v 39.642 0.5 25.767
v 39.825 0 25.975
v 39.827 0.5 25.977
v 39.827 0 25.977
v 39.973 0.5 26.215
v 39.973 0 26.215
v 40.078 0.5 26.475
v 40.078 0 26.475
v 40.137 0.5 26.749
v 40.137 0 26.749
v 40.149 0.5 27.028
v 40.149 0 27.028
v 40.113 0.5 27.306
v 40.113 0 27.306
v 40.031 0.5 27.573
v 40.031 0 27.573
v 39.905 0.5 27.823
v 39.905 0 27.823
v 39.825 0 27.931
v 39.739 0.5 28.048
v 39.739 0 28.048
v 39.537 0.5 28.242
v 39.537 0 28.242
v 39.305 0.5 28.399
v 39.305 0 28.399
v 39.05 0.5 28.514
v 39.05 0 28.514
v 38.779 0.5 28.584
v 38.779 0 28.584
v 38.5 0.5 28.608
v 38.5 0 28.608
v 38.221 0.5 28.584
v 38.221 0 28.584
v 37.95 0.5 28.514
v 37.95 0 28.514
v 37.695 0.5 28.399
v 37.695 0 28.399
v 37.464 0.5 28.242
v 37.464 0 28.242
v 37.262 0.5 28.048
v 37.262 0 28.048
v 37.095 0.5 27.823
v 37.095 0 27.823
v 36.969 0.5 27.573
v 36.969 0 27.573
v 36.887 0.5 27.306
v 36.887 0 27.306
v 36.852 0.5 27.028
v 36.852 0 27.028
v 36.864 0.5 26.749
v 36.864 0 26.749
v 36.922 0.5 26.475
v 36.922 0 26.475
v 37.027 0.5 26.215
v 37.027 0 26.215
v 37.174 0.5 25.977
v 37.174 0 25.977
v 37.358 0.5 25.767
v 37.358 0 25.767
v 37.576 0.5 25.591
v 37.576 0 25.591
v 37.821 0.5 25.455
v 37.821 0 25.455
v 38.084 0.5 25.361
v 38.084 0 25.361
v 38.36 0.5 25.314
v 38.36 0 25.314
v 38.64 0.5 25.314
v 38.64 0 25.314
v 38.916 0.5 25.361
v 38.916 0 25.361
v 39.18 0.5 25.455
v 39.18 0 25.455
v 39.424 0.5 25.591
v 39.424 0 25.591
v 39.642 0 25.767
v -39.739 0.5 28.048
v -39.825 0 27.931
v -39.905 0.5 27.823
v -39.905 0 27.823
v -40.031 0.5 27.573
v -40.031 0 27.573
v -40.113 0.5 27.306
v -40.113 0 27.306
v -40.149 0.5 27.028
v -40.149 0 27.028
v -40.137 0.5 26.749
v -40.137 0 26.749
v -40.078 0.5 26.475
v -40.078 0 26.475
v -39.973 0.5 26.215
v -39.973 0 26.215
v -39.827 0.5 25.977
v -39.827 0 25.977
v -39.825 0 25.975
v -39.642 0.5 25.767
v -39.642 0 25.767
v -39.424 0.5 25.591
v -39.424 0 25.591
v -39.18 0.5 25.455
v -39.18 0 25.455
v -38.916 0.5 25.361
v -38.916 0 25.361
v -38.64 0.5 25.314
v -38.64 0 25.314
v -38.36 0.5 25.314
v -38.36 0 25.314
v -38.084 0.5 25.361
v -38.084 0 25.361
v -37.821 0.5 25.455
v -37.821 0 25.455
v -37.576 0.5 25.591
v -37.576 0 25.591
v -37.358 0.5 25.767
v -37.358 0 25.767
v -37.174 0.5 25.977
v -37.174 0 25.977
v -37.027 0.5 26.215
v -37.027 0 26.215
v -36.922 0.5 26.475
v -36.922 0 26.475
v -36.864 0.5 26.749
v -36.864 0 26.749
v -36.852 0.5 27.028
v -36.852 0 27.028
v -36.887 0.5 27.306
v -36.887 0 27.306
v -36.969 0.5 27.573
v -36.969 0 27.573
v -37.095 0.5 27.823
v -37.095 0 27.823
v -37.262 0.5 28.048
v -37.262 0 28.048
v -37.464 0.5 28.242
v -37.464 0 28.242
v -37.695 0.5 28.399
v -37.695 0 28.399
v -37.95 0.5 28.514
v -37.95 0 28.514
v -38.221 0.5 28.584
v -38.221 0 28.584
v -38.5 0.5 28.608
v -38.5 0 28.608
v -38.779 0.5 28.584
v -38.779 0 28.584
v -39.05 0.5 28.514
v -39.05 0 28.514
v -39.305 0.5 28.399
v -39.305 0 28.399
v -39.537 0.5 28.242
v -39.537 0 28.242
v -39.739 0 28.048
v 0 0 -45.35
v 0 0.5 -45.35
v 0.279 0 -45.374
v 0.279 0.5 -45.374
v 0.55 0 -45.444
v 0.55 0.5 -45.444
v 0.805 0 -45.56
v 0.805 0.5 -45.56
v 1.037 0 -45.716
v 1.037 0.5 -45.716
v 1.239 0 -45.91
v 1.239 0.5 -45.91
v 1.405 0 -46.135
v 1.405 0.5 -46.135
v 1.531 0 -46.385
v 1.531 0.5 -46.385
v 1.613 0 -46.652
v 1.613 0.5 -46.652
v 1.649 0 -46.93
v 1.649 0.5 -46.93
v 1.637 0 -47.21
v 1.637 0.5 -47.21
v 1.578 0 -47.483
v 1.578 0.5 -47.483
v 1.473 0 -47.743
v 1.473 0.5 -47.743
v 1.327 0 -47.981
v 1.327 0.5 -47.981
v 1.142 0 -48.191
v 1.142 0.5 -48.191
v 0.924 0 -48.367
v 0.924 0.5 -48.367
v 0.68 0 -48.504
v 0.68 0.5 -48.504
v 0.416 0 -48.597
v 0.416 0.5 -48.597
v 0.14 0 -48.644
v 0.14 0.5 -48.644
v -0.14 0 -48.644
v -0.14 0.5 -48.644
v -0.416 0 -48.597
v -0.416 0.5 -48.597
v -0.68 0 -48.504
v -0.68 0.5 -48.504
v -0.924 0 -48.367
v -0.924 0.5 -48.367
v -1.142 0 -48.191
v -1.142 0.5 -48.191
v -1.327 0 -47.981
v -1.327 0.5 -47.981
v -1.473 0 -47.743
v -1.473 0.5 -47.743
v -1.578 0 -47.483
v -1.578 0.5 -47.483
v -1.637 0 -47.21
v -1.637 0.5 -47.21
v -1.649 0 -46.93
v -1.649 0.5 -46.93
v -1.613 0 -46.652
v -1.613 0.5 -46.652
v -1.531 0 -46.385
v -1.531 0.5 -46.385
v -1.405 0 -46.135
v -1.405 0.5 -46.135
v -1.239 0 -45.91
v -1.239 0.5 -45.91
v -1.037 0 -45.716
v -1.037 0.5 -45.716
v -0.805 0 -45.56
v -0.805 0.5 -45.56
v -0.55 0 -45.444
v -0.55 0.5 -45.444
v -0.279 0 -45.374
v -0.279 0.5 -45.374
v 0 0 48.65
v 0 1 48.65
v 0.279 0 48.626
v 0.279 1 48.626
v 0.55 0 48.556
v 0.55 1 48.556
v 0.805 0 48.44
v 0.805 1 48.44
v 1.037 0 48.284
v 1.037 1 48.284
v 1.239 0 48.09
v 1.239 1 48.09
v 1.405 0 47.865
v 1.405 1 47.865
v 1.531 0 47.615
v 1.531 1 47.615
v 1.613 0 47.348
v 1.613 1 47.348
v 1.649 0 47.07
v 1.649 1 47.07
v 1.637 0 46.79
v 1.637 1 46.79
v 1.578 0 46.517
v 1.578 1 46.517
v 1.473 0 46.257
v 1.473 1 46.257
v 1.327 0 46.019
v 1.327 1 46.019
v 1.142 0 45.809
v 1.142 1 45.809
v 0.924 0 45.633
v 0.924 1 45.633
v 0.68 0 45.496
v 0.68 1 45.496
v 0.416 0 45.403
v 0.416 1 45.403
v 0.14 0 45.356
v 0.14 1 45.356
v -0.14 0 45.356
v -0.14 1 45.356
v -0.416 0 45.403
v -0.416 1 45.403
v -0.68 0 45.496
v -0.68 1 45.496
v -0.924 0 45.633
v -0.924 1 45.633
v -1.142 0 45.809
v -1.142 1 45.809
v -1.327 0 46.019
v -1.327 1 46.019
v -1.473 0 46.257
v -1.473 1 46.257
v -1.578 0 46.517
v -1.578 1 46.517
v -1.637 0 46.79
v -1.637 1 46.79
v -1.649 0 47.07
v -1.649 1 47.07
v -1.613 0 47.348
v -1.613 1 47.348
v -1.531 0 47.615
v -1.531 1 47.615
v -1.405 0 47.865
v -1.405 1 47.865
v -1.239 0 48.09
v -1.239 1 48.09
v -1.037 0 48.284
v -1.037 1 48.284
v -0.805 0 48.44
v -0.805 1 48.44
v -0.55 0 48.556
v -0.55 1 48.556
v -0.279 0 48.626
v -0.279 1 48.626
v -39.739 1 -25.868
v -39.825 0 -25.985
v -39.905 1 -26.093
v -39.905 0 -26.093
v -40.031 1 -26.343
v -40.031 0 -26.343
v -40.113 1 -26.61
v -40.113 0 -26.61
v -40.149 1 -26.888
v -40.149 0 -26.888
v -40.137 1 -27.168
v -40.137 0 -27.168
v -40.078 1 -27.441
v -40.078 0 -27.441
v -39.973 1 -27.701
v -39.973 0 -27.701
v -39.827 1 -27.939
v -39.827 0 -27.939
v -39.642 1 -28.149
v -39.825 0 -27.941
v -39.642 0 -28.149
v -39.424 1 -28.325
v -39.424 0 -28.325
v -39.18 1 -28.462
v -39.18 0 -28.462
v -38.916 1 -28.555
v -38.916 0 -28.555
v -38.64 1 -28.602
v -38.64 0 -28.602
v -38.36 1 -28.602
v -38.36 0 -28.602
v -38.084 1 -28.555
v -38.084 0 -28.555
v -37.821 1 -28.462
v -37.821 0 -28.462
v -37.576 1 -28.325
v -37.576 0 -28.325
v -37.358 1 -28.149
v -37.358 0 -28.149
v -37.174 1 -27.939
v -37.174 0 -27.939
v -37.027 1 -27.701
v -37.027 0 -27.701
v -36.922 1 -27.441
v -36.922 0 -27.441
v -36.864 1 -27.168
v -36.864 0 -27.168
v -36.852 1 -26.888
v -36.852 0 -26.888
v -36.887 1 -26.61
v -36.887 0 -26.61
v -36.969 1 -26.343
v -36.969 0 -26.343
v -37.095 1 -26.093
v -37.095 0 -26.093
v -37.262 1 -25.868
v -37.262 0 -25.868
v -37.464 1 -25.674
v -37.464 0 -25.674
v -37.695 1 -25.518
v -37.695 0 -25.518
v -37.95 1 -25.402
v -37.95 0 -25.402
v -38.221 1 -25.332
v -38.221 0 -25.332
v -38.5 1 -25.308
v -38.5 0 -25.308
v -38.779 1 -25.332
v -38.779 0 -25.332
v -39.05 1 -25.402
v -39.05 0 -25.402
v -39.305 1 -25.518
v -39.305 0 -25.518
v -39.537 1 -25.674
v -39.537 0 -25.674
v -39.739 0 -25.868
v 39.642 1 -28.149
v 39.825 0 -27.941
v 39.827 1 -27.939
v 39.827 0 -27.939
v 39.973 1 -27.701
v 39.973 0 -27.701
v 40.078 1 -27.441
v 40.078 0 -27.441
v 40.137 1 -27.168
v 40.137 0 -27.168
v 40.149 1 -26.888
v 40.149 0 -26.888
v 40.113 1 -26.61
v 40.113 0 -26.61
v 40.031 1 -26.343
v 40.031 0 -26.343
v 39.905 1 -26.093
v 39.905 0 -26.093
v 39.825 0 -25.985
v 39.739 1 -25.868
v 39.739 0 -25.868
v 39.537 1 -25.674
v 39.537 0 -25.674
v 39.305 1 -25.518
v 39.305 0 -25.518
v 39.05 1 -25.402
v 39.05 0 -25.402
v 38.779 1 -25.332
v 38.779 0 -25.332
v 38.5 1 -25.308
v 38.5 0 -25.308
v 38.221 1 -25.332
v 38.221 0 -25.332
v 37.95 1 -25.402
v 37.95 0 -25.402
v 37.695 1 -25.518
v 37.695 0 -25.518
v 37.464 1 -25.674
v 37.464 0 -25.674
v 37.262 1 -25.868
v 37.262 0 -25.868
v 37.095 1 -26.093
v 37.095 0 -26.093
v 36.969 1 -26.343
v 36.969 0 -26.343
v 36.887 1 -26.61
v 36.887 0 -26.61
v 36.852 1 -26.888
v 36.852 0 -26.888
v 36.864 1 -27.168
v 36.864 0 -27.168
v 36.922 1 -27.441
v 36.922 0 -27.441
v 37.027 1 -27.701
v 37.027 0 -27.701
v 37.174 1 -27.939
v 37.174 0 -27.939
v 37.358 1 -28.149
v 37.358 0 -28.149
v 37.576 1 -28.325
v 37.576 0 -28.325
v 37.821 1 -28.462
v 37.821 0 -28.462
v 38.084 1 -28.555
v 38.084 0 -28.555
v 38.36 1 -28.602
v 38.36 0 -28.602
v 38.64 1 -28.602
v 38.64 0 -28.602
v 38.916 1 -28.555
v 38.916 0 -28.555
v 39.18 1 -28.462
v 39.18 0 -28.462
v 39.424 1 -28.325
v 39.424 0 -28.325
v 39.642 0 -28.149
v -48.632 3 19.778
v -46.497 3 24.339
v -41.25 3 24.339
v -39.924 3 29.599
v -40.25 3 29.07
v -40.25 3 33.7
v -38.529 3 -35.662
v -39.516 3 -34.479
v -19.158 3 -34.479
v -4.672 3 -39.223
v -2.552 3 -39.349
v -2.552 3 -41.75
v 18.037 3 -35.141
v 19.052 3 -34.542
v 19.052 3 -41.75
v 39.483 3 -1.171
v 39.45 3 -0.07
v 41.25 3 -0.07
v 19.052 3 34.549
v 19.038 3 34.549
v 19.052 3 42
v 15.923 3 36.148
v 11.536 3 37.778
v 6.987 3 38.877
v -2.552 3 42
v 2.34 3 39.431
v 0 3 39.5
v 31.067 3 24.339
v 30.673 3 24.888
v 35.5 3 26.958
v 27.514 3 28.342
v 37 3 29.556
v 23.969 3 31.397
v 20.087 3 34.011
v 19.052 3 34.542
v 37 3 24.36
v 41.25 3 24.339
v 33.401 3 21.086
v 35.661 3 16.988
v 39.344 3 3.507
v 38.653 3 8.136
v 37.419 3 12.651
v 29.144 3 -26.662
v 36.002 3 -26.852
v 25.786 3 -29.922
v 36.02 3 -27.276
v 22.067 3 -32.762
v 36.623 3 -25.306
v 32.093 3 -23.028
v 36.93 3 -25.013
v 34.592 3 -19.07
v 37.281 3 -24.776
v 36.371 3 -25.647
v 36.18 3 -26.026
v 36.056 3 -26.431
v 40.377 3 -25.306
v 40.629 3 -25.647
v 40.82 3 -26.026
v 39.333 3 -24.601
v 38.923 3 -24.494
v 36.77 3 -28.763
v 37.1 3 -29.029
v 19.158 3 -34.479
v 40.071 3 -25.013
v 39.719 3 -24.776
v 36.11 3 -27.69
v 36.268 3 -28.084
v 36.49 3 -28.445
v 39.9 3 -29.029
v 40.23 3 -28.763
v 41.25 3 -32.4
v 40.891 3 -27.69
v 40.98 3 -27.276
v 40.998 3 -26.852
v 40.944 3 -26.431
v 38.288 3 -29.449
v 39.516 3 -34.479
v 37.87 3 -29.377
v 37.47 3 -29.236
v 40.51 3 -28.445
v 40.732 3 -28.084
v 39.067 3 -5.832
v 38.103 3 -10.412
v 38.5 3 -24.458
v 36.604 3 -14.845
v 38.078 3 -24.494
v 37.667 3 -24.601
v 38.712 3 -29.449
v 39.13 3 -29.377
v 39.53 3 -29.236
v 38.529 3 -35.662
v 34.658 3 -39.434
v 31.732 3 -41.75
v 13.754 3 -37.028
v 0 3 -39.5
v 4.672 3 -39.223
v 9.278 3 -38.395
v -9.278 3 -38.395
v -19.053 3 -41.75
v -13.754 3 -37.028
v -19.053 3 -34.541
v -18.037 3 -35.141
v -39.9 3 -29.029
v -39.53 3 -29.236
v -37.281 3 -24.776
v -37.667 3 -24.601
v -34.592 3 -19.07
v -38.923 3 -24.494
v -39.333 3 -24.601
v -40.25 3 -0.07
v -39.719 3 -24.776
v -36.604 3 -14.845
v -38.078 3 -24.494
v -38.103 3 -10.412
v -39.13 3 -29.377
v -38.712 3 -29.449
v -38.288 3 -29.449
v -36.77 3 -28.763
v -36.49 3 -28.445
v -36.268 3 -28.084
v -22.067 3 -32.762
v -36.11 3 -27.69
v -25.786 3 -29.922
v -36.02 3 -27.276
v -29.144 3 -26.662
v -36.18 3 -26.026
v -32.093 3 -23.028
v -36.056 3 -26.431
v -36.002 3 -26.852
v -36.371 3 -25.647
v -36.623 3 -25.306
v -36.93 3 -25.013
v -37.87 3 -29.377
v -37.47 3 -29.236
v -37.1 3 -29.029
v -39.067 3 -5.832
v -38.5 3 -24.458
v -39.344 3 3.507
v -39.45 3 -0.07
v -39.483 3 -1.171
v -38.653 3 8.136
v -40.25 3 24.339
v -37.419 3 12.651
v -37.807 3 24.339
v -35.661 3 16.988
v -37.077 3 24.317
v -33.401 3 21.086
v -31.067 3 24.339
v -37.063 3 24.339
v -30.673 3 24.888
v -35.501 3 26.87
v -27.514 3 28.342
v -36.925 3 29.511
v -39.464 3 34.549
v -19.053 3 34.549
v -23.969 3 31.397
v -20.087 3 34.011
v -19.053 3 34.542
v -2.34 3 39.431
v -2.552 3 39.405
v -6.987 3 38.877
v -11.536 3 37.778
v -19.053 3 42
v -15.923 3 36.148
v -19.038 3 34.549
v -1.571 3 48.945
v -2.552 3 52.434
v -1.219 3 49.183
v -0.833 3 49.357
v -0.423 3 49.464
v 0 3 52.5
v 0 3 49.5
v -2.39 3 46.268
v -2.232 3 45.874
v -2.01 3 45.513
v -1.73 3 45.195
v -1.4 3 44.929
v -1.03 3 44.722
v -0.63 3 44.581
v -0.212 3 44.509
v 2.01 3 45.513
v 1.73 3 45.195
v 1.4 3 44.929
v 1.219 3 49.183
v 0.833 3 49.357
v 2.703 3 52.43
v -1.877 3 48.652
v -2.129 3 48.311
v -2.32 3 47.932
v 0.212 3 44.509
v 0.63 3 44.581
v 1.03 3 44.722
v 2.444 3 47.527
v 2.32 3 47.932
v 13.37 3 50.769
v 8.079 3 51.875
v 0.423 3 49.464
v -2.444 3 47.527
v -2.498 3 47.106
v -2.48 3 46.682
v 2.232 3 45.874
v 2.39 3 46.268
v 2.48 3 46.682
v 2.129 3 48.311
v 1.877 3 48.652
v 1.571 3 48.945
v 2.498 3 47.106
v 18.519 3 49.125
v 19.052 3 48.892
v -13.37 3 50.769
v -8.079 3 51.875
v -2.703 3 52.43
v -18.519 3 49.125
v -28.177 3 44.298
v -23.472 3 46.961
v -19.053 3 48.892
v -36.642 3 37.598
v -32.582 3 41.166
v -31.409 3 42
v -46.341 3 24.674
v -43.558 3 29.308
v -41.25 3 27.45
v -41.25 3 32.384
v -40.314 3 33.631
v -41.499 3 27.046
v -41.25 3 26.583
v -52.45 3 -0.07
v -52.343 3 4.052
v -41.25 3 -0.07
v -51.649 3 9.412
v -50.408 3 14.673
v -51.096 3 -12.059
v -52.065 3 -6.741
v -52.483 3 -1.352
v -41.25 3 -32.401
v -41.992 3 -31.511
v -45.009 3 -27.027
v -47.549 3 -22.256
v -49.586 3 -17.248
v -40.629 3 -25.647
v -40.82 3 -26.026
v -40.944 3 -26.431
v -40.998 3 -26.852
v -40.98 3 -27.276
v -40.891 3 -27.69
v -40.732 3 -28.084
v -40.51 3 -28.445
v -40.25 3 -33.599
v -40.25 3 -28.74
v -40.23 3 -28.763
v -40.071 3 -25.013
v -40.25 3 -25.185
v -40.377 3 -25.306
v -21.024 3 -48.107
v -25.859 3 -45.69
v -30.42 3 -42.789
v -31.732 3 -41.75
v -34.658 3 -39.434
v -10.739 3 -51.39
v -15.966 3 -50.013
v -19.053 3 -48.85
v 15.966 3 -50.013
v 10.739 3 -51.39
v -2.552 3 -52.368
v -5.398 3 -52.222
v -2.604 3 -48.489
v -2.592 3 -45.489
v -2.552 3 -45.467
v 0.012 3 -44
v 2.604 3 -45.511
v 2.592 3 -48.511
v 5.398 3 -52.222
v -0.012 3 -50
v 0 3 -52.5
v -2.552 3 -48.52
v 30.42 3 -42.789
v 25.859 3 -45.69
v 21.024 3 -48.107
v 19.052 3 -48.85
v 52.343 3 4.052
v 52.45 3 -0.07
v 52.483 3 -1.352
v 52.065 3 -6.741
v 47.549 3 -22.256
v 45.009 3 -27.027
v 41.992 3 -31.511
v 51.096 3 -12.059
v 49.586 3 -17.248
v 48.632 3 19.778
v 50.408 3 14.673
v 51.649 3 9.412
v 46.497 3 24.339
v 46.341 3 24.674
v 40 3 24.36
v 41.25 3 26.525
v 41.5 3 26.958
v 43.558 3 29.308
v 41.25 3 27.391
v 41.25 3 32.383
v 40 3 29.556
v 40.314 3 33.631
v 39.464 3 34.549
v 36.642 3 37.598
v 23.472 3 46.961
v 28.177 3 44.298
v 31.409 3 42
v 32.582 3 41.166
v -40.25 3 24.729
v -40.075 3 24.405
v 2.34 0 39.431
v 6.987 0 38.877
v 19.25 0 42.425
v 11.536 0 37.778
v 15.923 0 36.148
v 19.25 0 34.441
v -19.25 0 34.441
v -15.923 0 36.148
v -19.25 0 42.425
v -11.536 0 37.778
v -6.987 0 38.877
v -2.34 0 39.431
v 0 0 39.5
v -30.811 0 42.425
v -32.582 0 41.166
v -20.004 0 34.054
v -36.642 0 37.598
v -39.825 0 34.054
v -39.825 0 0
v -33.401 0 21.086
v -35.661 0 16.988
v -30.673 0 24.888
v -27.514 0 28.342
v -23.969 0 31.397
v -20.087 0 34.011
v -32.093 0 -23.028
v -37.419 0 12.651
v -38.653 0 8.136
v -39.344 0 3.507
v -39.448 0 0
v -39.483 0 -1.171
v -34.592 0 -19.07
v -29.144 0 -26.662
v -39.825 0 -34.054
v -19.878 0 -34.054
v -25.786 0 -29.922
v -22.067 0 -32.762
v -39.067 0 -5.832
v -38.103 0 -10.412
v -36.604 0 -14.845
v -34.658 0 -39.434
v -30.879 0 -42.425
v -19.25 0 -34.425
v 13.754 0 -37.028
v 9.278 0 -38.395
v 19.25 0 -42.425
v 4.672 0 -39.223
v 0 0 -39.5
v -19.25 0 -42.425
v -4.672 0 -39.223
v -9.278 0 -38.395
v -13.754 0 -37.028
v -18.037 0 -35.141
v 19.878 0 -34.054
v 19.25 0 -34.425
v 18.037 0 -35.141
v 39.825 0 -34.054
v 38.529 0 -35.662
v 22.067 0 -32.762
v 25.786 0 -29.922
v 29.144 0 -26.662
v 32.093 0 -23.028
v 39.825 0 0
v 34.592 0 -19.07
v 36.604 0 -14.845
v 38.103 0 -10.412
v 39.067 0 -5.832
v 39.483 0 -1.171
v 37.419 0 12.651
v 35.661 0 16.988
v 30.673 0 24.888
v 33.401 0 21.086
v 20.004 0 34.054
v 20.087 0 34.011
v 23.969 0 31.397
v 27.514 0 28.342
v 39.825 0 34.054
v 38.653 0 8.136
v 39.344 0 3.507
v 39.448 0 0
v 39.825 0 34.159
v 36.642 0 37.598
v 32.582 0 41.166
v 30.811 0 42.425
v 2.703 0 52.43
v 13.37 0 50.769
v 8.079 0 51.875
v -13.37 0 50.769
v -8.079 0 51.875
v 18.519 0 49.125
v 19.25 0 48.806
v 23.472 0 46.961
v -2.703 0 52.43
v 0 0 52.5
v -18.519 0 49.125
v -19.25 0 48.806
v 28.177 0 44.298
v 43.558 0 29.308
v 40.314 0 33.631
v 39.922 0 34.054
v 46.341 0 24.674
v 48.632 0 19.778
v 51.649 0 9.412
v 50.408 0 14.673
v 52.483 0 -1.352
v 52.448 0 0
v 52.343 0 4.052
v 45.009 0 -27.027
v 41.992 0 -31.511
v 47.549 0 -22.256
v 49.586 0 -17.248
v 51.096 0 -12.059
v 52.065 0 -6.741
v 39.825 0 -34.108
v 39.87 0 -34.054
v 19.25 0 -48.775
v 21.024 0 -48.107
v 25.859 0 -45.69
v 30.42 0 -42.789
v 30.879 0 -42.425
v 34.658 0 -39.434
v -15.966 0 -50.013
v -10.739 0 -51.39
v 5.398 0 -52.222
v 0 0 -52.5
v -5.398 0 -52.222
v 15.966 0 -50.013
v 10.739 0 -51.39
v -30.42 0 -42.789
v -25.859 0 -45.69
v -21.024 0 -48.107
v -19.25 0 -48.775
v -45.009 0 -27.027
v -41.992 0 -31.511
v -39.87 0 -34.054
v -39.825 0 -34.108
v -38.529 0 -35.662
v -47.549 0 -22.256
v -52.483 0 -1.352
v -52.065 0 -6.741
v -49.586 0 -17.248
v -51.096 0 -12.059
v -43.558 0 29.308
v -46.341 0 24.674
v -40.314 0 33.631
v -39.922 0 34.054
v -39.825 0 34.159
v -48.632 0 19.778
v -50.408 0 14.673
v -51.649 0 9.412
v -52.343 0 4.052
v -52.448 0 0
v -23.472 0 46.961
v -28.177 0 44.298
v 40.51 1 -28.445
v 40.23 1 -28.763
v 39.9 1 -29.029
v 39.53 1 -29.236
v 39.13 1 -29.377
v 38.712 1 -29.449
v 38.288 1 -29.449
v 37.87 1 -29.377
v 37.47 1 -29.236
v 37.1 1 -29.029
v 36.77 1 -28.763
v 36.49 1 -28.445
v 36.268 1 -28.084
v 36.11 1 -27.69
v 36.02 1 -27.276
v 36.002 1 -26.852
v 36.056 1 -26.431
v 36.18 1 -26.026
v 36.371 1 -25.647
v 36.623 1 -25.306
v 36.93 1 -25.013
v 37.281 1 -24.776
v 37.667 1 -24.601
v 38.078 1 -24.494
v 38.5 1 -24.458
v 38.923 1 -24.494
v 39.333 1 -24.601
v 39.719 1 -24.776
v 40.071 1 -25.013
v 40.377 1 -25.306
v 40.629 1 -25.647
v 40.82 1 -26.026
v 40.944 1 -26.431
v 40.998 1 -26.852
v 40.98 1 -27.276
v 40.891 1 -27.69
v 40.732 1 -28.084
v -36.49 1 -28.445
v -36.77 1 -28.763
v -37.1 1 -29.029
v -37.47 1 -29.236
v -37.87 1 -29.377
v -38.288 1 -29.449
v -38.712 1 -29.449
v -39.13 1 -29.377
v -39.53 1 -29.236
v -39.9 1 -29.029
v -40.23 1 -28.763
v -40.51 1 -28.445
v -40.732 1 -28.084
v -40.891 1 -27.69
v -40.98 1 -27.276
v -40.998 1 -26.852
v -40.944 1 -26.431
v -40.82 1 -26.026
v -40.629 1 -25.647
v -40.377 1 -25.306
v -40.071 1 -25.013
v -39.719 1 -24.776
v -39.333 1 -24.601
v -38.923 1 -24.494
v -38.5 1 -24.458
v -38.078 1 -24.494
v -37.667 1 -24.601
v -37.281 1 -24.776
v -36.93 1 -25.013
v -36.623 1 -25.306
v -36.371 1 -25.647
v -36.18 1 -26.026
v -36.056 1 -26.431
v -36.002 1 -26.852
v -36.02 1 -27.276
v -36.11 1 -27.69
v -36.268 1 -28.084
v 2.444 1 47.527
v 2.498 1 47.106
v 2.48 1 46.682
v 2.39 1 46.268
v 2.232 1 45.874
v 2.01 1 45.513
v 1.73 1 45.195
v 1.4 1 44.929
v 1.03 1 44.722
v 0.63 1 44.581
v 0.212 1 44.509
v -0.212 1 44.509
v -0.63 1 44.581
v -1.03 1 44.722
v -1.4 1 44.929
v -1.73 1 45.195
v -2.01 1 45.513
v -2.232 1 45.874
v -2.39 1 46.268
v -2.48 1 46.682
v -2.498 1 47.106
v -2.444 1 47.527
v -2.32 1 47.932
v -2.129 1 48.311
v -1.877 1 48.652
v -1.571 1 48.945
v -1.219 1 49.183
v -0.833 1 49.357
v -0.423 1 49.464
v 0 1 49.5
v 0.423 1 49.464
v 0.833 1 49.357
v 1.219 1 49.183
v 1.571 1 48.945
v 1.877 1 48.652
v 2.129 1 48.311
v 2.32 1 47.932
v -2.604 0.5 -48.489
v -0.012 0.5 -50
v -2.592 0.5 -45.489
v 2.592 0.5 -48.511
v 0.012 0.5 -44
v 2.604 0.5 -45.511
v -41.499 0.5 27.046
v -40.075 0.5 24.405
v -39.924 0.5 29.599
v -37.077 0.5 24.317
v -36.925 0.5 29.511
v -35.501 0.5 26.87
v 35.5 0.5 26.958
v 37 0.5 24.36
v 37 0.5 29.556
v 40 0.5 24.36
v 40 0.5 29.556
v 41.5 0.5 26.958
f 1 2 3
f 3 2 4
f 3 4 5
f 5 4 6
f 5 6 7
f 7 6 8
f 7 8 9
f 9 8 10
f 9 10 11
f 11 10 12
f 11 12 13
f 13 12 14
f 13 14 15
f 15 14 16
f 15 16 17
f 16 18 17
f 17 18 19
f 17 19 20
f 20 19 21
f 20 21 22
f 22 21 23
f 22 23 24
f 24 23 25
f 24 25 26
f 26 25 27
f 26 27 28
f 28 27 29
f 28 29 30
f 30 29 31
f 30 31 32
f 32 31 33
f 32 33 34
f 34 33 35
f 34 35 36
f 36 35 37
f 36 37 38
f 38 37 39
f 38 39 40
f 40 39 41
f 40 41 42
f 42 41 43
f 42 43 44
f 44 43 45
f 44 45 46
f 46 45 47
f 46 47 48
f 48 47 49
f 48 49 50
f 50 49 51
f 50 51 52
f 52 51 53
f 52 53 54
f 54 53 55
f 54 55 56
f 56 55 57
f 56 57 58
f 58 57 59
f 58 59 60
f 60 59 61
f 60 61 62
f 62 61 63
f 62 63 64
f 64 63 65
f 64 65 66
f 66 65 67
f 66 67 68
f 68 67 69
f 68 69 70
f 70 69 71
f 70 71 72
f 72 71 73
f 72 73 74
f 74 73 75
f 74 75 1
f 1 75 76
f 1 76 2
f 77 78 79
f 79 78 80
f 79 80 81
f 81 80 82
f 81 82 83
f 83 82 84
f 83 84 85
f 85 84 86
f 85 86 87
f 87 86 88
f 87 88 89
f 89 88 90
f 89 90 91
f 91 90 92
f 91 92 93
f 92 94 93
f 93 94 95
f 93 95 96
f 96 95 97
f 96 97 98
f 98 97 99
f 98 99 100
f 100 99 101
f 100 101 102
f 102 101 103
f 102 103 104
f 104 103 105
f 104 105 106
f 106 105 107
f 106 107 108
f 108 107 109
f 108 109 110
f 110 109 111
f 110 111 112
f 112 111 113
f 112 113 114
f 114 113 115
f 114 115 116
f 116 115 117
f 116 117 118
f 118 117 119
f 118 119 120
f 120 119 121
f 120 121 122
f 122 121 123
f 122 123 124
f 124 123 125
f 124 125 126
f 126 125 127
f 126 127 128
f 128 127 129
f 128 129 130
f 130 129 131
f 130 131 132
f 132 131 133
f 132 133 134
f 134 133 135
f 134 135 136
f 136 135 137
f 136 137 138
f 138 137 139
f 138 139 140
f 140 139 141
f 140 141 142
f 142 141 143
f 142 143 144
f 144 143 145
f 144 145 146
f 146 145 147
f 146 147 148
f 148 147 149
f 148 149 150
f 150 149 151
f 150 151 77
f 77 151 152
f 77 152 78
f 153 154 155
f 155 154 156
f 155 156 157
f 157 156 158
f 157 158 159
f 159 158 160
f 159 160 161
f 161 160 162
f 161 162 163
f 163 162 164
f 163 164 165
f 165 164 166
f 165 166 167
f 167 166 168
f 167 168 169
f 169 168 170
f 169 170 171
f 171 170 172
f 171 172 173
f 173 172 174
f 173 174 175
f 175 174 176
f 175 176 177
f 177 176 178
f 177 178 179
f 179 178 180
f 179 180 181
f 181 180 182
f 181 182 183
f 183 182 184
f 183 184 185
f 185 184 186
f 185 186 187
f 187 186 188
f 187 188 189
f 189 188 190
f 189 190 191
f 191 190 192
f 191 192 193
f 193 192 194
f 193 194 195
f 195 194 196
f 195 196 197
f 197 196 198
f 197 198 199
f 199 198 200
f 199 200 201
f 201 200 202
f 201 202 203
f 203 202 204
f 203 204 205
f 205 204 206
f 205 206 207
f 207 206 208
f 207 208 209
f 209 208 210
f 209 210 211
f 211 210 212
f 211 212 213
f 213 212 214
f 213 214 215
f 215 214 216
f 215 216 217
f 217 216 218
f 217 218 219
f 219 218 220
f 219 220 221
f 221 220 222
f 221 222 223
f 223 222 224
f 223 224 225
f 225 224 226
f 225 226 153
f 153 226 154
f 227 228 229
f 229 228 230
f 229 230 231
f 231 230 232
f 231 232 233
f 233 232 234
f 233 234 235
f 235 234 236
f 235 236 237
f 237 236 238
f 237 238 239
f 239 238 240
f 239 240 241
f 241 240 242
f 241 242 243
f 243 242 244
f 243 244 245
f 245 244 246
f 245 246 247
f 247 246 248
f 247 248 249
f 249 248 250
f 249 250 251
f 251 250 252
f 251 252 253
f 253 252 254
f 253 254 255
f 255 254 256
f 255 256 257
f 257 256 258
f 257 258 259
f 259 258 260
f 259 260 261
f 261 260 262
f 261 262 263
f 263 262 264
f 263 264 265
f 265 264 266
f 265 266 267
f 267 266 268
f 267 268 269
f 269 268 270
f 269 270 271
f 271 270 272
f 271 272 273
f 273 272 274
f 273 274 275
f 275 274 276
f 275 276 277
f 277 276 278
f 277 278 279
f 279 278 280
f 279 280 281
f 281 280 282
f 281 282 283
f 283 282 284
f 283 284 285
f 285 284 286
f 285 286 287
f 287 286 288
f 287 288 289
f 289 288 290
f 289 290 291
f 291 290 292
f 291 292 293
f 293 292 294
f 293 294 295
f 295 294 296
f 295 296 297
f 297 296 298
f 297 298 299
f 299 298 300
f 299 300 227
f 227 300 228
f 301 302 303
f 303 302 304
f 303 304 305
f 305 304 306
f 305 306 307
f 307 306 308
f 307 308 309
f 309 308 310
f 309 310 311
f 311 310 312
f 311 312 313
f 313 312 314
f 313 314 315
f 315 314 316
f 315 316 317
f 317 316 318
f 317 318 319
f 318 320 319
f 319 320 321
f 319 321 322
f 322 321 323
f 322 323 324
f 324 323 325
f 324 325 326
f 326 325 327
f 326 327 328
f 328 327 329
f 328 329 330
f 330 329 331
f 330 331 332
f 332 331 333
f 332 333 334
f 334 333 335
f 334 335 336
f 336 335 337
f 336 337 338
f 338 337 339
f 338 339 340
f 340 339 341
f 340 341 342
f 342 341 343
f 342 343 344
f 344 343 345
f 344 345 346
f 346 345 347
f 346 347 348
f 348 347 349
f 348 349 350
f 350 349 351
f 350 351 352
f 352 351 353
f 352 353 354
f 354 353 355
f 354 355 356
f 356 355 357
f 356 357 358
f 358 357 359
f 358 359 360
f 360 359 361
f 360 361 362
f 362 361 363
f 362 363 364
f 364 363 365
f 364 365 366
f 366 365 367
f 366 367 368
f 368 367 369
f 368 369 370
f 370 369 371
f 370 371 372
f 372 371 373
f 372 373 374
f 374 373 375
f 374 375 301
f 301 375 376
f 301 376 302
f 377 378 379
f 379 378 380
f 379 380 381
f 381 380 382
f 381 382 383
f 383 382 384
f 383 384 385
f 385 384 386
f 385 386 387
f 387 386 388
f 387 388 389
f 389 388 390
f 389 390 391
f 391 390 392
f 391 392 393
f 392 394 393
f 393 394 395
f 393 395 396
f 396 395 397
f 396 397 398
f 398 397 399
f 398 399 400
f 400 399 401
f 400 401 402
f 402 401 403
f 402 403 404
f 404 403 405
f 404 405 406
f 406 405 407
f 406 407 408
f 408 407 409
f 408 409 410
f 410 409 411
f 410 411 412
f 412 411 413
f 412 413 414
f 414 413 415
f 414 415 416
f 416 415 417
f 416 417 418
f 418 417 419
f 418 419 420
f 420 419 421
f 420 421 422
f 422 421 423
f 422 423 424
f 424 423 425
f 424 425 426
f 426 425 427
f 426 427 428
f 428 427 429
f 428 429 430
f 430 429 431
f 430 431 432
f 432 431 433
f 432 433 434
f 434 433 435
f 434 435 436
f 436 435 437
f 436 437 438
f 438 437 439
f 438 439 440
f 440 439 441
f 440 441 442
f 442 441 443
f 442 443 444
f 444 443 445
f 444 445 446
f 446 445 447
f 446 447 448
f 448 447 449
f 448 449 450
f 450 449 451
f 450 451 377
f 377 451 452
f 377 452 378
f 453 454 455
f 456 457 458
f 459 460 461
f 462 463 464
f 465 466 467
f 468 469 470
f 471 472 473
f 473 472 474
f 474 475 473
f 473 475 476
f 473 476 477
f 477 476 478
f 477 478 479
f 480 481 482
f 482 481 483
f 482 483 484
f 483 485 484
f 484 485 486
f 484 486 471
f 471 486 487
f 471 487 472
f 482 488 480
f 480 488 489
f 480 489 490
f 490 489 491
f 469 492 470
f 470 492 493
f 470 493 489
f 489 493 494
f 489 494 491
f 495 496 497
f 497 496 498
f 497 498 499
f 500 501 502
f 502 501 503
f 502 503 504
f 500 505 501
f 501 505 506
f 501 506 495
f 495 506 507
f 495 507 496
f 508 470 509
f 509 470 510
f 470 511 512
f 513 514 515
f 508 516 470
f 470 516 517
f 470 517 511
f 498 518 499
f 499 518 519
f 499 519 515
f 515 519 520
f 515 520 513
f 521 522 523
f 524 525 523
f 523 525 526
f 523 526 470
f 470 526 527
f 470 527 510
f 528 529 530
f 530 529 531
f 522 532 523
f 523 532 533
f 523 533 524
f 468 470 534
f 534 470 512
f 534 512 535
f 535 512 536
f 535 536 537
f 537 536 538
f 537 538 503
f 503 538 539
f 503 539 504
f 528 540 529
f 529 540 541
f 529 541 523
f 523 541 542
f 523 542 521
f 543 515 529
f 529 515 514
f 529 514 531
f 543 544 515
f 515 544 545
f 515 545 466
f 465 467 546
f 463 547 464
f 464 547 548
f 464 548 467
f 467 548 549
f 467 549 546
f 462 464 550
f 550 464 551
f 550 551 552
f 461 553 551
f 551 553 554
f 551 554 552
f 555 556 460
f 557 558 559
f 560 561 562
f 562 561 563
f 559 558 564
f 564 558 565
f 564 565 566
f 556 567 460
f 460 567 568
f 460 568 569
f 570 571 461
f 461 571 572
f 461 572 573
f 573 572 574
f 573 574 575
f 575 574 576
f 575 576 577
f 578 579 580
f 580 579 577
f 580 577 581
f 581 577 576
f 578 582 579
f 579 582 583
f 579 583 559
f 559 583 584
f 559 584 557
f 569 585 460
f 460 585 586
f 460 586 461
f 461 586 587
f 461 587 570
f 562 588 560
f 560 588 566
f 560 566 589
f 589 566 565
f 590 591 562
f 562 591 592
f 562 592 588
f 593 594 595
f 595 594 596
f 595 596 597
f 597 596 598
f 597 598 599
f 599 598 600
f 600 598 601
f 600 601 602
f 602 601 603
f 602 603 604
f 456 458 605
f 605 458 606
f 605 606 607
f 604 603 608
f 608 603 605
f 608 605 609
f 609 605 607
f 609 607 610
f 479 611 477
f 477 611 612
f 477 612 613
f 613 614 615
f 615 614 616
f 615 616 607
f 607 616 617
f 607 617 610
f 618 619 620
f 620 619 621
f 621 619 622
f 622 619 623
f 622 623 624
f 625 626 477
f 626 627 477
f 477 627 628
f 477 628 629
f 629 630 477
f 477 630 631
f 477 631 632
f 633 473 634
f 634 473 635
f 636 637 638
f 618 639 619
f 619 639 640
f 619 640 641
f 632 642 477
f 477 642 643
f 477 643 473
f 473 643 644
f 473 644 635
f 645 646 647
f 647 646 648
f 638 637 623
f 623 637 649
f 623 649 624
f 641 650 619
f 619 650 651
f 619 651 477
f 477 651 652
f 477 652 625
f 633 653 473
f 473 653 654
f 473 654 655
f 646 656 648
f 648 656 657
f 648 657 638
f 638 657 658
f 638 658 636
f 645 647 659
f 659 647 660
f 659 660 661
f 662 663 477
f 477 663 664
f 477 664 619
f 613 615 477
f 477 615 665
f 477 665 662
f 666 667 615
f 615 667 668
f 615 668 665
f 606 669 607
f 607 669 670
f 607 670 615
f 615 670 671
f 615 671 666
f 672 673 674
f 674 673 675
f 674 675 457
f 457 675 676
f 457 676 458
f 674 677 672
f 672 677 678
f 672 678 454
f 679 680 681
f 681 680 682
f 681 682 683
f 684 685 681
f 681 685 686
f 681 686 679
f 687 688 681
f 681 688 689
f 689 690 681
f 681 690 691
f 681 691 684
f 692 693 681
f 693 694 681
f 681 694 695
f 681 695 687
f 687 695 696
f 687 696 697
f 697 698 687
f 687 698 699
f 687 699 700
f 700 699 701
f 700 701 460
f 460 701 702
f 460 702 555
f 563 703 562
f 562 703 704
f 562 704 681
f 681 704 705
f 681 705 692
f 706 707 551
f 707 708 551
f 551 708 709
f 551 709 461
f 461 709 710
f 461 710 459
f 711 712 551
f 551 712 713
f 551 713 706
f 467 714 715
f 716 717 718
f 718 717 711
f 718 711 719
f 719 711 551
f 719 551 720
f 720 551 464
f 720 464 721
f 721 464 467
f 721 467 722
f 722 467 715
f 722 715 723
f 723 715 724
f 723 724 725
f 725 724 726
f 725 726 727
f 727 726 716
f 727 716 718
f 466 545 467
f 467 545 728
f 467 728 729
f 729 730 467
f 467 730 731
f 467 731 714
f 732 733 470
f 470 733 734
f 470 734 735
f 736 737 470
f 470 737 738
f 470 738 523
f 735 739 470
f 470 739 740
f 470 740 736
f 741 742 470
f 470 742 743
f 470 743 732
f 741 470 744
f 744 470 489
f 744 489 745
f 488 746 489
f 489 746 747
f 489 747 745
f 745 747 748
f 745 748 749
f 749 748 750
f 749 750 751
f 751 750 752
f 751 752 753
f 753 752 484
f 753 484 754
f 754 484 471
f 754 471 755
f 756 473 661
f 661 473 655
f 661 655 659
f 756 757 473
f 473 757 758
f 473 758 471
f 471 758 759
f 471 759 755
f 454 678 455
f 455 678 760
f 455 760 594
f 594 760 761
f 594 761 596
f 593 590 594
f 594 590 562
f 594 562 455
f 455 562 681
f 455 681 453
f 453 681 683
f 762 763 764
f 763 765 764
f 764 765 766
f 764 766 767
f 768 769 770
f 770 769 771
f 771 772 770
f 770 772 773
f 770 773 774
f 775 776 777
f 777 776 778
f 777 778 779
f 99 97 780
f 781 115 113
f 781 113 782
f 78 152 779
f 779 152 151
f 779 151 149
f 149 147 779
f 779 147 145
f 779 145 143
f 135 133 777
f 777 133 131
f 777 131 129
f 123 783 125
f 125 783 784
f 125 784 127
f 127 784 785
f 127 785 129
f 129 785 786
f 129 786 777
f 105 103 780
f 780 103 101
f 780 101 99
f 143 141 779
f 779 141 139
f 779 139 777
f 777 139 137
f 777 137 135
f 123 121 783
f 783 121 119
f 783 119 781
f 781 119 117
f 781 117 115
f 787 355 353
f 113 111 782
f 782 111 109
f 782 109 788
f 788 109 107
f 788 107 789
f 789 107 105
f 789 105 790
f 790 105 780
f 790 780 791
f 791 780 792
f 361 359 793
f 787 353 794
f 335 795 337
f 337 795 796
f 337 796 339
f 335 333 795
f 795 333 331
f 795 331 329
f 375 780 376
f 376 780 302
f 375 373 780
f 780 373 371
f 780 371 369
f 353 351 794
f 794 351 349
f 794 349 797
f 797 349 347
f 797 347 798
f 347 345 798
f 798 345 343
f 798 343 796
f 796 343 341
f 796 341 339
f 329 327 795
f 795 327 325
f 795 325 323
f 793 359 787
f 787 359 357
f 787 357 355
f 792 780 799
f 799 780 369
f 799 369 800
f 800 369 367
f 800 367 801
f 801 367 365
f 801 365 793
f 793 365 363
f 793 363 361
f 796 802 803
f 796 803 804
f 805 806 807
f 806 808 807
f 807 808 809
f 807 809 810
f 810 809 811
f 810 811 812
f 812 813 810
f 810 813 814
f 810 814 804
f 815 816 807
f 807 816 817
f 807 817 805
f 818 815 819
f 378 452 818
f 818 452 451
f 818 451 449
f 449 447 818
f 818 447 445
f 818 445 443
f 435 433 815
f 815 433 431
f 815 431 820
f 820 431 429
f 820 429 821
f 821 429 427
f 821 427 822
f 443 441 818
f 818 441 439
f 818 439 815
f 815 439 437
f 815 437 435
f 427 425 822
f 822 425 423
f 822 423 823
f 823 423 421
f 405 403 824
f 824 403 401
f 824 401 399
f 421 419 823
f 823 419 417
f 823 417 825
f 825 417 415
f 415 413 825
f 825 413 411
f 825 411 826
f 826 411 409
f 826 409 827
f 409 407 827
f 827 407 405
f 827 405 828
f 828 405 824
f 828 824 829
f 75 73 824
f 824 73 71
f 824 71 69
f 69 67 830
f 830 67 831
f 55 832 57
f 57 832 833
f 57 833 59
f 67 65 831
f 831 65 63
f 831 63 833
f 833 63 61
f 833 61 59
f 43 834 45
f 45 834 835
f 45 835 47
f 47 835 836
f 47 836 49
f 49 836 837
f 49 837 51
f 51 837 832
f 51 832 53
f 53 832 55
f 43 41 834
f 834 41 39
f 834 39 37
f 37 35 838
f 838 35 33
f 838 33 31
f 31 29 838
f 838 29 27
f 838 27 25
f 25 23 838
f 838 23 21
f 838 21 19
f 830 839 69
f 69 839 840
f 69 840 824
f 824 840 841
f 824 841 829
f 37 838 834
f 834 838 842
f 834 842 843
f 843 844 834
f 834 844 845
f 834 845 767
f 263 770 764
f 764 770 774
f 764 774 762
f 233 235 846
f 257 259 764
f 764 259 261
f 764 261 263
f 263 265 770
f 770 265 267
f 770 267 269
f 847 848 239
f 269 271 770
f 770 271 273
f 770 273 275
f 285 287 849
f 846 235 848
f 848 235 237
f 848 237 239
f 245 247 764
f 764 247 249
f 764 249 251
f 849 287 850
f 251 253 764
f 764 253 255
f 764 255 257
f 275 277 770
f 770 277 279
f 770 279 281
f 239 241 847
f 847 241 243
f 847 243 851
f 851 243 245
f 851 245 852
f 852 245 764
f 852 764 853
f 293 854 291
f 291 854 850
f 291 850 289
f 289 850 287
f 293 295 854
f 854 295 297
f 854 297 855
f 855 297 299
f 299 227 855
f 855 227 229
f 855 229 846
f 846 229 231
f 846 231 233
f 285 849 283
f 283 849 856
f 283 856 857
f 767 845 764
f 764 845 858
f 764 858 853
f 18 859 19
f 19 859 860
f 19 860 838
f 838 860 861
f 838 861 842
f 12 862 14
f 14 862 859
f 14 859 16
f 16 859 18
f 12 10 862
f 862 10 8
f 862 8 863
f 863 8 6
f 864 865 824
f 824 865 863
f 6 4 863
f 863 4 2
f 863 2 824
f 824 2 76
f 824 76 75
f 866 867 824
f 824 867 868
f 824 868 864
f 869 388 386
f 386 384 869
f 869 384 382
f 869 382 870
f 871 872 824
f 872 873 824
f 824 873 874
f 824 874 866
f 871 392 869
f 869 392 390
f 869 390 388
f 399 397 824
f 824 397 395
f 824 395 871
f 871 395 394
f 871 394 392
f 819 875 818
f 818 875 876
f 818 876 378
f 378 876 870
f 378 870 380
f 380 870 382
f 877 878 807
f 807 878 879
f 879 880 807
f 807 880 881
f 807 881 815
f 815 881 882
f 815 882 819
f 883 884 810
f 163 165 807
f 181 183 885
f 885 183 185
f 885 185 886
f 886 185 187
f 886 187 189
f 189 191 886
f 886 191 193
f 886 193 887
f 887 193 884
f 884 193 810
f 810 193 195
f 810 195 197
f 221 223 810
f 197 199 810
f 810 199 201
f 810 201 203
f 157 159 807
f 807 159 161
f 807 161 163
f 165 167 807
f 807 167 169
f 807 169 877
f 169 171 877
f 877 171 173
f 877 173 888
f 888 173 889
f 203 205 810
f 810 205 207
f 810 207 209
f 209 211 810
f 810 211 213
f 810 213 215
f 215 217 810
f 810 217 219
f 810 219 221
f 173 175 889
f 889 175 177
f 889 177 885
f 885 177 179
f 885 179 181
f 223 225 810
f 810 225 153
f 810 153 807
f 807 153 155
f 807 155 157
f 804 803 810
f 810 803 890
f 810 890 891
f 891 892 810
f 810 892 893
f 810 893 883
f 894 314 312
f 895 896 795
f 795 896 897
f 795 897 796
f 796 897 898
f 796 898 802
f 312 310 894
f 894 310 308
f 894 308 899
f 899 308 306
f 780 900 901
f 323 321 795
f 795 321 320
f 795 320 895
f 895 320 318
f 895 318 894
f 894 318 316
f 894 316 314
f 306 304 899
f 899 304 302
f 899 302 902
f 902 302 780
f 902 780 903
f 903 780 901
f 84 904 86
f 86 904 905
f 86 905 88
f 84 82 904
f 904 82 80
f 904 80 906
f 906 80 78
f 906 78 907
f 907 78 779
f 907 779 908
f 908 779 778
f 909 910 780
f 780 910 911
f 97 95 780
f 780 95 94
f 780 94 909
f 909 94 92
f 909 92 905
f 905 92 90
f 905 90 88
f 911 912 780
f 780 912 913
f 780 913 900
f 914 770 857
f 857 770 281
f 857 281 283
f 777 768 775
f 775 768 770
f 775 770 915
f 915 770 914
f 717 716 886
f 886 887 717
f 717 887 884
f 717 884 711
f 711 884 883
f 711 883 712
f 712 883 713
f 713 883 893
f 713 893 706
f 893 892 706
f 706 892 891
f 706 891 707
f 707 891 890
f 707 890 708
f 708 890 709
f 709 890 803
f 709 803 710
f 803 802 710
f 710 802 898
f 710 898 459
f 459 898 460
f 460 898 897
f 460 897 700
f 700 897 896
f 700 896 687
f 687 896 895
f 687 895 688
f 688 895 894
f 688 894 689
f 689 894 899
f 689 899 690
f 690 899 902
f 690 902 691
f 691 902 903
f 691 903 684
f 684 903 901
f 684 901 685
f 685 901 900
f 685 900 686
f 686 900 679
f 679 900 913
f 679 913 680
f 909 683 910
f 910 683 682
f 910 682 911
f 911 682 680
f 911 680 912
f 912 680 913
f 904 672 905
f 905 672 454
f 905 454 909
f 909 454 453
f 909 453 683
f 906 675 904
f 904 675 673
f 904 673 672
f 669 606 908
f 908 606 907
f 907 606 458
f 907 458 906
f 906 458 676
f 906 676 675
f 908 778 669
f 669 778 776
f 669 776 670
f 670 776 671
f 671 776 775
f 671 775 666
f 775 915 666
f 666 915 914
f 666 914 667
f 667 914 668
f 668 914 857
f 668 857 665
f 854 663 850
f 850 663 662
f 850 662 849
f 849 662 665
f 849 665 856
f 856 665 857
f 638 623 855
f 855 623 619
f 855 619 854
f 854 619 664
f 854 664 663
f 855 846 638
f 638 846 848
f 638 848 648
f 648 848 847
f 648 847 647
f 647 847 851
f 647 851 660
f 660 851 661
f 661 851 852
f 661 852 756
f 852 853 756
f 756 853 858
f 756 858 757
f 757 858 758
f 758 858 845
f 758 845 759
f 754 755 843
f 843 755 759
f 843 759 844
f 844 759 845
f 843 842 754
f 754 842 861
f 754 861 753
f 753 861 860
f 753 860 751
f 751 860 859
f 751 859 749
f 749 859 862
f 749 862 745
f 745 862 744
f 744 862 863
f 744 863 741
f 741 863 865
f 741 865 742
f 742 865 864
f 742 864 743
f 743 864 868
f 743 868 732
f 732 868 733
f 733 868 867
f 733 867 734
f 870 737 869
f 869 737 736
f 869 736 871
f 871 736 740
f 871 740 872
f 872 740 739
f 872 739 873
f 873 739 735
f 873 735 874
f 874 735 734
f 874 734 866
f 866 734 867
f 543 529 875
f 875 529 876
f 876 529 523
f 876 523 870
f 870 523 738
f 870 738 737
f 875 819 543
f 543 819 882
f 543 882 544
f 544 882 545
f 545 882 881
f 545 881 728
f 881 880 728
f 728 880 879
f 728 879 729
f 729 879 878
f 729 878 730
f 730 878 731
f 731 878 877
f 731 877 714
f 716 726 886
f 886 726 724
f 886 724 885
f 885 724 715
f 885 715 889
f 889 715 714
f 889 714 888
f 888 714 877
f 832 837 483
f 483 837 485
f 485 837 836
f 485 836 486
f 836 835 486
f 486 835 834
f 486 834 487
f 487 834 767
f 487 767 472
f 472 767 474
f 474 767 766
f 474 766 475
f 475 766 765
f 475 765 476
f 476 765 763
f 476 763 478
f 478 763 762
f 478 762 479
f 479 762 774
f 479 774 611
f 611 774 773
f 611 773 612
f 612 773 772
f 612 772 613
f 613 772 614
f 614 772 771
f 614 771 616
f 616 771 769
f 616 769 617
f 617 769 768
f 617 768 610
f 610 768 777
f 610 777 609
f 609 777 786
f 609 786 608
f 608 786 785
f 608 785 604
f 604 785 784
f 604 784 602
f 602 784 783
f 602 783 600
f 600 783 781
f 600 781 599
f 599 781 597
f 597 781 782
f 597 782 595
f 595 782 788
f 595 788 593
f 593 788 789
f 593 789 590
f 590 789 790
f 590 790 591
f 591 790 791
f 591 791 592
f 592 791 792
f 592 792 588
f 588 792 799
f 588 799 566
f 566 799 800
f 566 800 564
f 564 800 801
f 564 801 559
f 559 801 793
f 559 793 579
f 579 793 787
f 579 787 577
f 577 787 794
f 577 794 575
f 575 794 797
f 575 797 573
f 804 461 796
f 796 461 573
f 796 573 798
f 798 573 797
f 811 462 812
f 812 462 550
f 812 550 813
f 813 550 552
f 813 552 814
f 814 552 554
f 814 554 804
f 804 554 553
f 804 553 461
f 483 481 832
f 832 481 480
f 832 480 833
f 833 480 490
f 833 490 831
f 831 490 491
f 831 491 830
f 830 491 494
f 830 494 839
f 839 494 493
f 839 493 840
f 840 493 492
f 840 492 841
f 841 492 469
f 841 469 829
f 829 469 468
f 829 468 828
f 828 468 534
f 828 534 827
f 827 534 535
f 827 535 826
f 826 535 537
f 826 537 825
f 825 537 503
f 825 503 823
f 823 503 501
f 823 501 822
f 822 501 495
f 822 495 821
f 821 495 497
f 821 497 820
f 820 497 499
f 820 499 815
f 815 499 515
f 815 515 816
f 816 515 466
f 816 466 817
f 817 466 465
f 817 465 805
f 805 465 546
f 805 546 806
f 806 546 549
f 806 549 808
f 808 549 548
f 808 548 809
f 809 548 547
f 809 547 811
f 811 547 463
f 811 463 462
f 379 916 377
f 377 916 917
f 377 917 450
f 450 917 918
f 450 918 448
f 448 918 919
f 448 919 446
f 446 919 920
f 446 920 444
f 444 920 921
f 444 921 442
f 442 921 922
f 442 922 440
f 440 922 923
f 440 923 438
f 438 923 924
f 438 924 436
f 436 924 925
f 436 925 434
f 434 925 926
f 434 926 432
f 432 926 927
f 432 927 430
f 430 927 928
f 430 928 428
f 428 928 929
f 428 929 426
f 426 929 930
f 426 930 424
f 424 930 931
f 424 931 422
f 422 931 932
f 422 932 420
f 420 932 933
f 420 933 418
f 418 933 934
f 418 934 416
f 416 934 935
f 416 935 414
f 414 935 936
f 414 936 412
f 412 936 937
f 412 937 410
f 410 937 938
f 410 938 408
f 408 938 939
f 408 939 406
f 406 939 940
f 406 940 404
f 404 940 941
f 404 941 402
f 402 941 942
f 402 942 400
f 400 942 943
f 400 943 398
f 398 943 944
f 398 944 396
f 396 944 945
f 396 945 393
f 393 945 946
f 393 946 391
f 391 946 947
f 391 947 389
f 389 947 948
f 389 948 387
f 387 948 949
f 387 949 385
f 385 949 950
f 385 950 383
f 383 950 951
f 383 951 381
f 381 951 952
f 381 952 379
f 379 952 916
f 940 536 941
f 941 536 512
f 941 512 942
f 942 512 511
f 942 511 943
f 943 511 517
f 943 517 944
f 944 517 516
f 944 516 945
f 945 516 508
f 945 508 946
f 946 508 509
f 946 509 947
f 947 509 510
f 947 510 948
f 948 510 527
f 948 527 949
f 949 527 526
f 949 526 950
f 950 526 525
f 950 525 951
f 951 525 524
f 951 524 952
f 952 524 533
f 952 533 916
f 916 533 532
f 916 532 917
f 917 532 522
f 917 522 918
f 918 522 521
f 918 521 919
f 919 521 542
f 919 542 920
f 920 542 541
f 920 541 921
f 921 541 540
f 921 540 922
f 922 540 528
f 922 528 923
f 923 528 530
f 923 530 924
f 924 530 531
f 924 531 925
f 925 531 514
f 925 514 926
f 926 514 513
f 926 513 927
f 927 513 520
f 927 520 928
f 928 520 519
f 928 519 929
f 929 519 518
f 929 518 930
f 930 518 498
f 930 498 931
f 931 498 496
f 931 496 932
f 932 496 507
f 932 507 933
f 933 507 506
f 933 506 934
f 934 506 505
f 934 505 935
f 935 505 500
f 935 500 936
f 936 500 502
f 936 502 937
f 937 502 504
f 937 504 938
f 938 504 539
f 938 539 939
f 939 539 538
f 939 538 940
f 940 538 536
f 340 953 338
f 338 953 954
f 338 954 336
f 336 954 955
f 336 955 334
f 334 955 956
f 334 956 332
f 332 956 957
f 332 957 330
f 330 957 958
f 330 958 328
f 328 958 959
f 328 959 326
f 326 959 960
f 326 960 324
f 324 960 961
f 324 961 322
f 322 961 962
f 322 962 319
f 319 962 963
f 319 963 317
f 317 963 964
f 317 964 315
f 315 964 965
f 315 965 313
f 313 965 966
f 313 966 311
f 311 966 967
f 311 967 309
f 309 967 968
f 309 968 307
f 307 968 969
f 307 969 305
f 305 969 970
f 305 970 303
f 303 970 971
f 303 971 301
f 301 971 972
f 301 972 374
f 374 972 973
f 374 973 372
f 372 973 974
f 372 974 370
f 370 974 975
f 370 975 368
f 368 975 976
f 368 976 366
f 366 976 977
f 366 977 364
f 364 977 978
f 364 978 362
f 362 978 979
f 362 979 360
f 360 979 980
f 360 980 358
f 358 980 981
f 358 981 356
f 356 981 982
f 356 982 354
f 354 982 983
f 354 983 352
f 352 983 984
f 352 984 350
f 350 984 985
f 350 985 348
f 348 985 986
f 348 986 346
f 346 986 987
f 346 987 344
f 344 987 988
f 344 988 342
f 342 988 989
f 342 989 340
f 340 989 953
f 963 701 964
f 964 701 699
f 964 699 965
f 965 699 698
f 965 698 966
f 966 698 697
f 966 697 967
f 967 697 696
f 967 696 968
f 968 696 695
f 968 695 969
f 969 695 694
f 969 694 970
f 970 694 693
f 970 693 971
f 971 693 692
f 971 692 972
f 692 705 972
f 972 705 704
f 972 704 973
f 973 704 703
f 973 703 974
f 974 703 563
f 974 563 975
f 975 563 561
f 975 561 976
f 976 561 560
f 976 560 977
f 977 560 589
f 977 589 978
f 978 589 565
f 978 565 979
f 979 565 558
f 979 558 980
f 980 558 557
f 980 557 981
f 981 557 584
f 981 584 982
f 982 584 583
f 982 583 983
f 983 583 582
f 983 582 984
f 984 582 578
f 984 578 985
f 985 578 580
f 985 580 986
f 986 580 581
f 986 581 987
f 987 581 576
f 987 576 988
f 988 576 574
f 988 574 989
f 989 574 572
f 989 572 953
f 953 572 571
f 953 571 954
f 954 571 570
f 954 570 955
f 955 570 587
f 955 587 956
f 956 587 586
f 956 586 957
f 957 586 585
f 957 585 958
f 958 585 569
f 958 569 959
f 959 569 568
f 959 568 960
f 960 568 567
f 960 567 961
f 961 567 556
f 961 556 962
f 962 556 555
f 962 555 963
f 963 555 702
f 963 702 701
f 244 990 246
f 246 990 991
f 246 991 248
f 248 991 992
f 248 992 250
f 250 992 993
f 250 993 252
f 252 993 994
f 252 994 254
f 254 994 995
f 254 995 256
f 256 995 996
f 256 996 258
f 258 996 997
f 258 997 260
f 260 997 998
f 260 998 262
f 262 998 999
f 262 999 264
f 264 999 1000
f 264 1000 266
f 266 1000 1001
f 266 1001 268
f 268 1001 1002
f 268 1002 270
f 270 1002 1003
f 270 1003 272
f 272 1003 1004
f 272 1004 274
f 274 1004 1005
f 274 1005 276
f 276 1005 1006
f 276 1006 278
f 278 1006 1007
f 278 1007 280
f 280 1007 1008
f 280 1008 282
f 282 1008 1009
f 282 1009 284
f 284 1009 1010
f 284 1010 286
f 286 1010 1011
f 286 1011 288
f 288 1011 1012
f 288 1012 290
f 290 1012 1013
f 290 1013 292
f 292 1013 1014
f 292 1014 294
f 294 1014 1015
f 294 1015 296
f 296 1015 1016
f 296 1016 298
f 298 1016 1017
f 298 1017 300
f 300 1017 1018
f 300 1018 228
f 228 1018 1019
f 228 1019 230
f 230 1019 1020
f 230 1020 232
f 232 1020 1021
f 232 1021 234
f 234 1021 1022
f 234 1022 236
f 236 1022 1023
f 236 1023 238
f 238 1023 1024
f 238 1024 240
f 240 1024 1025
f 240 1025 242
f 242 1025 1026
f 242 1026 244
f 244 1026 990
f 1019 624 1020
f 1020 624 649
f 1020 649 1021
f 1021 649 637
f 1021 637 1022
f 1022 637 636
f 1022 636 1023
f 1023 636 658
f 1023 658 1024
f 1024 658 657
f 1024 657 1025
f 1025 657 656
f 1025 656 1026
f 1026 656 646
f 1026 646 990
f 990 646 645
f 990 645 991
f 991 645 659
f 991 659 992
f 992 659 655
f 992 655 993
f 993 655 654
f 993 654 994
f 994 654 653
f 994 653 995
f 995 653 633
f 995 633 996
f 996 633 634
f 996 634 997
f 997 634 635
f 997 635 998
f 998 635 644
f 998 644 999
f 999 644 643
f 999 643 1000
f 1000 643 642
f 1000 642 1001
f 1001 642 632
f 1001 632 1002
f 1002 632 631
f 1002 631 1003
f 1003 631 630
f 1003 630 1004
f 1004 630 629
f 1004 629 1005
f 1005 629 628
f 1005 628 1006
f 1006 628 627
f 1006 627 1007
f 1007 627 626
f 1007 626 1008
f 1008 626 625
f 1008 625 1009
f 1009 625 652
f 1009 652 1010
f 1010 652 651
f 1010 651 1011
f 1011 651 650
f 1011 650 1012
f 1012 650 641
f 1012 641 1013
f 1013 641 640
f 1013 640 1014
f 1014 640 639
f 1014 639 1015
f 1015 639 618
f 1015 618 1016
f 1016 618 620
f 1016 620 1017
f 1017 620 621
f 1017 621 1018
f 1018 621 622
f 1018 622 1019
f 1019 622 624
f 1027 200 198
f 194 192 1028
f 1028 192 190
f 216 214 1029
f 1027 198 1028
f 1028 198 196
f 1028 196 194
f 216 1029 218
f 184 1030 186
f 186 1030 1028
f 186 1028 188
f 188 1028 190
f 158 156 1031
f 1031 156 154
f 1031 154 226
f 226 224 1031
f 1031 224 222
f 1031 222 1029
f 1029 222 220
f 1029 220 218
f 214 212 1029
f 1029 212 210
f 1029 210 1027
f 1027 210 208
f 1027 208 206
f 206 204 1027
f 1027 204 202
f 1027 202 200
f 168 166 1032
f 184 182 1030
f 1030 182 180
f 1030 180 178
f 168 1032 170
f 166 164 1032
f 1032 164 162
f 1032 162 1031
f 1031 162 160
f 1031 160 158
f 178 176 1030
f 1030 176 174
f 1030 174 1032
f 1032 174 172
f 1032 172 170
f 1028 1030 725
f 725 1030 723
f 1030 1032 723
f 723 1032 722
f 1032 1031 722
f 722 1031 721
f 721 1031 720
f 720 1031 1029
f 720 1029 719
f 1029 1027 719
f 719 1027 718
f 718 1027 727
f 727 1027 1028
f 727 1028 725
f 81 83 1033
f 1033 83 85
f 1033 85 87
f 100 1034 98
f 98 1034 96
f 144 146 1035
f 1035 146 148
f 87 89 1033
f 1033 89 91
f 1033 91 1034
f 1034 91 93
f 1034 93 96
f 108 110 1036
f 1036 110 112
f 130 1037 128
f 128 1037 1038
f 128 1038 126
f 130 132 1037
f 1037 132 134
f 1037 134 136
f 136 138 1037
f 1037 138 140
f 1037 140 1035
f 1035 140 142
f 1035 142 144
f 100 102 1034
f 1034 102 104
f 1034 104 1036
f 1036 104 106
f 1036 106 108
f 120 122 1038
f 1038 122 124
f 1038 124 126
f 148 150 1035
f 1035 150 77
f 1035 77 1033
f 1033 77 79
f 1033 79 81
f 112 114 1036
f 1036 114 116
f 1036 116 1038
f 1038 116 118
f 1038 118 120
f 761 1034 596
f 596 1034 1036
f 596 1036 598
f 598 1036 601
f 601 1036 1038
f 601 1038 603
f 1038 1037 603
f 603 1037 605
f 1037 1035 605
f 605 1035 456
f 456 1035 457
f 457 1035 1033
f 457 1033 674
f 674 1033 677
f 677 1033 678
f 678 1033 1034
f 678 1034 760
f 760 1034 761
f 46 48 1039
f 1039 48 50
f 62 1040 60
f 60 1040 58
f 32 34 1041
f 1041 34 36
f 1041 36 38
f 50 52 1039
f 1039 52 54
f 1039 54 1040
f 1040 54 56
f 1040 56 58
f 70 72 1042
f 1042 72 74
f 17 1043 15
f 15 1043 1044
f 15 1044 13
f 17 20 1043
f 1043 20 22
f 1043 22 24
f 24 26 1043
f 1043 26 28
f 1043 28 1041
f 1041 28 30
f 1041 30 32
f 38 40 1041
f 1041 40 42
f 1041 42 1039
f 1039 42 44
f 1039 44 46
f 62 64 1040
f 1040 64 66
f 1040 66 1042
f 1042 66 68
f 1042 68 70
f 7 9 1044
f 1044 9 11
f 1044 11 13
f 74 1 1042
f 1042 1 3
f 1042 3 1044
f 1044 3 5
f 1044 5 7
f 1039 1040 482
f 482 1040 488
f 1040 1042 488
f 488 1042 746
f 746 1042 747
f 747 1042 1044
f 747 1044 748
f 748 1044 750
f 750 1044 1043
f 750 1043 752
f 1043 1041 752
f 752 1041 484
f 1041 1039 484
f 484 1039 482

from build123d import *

# Parameters (mm, degrees)
SKETCH1_R           = 52.5
SKETCH1_R_2         = 39.5
BOSS_EXTRUDE1_DEPTH = 3
SKETCH2_R           = 1.65
CUT_EXTRUDE1_DEPTH  = 75.306796459
SKETCH3_R           = 2.5
CUT_EXTRUDE2_DEPTH  = 2
CUT_EXTRUDE3_DEPTH  = 2.5


with BuildPart() as part:
    # Sketch1 → Boss-Extrude1 (new body)
    with BuildSketch(Plane(origin=(0, 0, 0), x_dir=(1, 0, 0), z_dir=(0, 1, 0))):
        with Locations(Location((0, 0, 0), (0, 0, 270))):
            Circle(SKETCH1_R)
        with Locations(Location((0, 0, 0), (0, 0, 270))):
            Circle(SKETCH1_R_2, mode=Mode.SUBTRACT)
    extrude(amount=BOSS_EXTRUDE1_DEPTH)

    # Sketch2 → Cut-Extrude1 (cut, through all)
    with BuildSketch(Plane(origin=(0, 3, 0), x_dir=(1, 0, 0), z_dir=(0, 1, 0))):
        with Locations(Location((0, 47, 0), (0, 0, 270))):
            Circle(SKETCH2_R)
        with Locations(Location((0, -47, 0), (0, 0, 270))):
            Circle(SKETCH2_R)
        with Locations(Location((-38.500146082, 26.958092508, 0), (0, 0, 270))):
            Circle(SKETCH2_R)
        with Locations(Location((38.500146082, 26.958092508, 0), (0, 0, 270))):
            Circle(SKETCH2_R)
        with Locations(Location((38.500146082, -26.958092508, 0), (0, 0, 270))):
            Circle(SKETCH2_R)
        with Locations(Location((-38.500146082, -26.958092508, 0), (0, 0, 270))):
            Circle(SKETCH2_R)
    extrude(amount=-CUT_EXTRUDE1_DEPTH, mode=Mode.SUBTRACT)

    # Sketch3 → Cut-Extrude2 (cut)
    with BuildSketch(Plane(origin=(0, 3, 0), x_dir=(1, 0, 0), z_dir=(0, 1, 0))):
        with Locations(Location((-38.500146082, 26.958092508, 0), (0, 0, 270))):
            Circle(SKETCH3_R)
        with Locations(Location((38.500146082, 26.958092508, 0), (0, 0, 270))):
            Circle(SKETCH3_R)
        with Locations(Location((0, -47, 0), (0, 0, 270))):
            Circle(SKETCH3_R)
    extrude(amount=-CUT_EXTRUDE2_DEPTH, mode=Mode.SUBTRACT)

    # Sketch4 → Cut-Extrude3 (cut)
    with BuildSketch(Plane(origin=(0, 3, 0), x_dir=(1, 0, 0), z_dir=(0, 1, 0))):
        Polygon((-0.012280839, 49.999974863), (-2.604194862, 48.489351913), (-2.591914023, 45.48937705), (0.012280839, 44.000025137), (2.604194862, 45.510648087), (2.591914023, 48.51062295), align=None)
        Polygon((-40.07536917, -24.404923454), (-41.498866887, -27.045691193), (-39.923643798, -29.598860247), (-36.924922993, -29.511261563), (-35.501425276, -26.870493824), (-37.076648365, -24.31732477), align=None)
        Polygon((35.500146082, -26.958092508), (37.000146082, -29.55616872), (40.000146082, -29.55616872), (41.500146082, -26.958092508), (40.000146082, -24.360016297), (37.000146082, -24.360016297), align=None)
    extrude(amount=-CUT_EXTRUDE3_DEPTH, mode=Mode.SUBTRACT)


solid = part.part
